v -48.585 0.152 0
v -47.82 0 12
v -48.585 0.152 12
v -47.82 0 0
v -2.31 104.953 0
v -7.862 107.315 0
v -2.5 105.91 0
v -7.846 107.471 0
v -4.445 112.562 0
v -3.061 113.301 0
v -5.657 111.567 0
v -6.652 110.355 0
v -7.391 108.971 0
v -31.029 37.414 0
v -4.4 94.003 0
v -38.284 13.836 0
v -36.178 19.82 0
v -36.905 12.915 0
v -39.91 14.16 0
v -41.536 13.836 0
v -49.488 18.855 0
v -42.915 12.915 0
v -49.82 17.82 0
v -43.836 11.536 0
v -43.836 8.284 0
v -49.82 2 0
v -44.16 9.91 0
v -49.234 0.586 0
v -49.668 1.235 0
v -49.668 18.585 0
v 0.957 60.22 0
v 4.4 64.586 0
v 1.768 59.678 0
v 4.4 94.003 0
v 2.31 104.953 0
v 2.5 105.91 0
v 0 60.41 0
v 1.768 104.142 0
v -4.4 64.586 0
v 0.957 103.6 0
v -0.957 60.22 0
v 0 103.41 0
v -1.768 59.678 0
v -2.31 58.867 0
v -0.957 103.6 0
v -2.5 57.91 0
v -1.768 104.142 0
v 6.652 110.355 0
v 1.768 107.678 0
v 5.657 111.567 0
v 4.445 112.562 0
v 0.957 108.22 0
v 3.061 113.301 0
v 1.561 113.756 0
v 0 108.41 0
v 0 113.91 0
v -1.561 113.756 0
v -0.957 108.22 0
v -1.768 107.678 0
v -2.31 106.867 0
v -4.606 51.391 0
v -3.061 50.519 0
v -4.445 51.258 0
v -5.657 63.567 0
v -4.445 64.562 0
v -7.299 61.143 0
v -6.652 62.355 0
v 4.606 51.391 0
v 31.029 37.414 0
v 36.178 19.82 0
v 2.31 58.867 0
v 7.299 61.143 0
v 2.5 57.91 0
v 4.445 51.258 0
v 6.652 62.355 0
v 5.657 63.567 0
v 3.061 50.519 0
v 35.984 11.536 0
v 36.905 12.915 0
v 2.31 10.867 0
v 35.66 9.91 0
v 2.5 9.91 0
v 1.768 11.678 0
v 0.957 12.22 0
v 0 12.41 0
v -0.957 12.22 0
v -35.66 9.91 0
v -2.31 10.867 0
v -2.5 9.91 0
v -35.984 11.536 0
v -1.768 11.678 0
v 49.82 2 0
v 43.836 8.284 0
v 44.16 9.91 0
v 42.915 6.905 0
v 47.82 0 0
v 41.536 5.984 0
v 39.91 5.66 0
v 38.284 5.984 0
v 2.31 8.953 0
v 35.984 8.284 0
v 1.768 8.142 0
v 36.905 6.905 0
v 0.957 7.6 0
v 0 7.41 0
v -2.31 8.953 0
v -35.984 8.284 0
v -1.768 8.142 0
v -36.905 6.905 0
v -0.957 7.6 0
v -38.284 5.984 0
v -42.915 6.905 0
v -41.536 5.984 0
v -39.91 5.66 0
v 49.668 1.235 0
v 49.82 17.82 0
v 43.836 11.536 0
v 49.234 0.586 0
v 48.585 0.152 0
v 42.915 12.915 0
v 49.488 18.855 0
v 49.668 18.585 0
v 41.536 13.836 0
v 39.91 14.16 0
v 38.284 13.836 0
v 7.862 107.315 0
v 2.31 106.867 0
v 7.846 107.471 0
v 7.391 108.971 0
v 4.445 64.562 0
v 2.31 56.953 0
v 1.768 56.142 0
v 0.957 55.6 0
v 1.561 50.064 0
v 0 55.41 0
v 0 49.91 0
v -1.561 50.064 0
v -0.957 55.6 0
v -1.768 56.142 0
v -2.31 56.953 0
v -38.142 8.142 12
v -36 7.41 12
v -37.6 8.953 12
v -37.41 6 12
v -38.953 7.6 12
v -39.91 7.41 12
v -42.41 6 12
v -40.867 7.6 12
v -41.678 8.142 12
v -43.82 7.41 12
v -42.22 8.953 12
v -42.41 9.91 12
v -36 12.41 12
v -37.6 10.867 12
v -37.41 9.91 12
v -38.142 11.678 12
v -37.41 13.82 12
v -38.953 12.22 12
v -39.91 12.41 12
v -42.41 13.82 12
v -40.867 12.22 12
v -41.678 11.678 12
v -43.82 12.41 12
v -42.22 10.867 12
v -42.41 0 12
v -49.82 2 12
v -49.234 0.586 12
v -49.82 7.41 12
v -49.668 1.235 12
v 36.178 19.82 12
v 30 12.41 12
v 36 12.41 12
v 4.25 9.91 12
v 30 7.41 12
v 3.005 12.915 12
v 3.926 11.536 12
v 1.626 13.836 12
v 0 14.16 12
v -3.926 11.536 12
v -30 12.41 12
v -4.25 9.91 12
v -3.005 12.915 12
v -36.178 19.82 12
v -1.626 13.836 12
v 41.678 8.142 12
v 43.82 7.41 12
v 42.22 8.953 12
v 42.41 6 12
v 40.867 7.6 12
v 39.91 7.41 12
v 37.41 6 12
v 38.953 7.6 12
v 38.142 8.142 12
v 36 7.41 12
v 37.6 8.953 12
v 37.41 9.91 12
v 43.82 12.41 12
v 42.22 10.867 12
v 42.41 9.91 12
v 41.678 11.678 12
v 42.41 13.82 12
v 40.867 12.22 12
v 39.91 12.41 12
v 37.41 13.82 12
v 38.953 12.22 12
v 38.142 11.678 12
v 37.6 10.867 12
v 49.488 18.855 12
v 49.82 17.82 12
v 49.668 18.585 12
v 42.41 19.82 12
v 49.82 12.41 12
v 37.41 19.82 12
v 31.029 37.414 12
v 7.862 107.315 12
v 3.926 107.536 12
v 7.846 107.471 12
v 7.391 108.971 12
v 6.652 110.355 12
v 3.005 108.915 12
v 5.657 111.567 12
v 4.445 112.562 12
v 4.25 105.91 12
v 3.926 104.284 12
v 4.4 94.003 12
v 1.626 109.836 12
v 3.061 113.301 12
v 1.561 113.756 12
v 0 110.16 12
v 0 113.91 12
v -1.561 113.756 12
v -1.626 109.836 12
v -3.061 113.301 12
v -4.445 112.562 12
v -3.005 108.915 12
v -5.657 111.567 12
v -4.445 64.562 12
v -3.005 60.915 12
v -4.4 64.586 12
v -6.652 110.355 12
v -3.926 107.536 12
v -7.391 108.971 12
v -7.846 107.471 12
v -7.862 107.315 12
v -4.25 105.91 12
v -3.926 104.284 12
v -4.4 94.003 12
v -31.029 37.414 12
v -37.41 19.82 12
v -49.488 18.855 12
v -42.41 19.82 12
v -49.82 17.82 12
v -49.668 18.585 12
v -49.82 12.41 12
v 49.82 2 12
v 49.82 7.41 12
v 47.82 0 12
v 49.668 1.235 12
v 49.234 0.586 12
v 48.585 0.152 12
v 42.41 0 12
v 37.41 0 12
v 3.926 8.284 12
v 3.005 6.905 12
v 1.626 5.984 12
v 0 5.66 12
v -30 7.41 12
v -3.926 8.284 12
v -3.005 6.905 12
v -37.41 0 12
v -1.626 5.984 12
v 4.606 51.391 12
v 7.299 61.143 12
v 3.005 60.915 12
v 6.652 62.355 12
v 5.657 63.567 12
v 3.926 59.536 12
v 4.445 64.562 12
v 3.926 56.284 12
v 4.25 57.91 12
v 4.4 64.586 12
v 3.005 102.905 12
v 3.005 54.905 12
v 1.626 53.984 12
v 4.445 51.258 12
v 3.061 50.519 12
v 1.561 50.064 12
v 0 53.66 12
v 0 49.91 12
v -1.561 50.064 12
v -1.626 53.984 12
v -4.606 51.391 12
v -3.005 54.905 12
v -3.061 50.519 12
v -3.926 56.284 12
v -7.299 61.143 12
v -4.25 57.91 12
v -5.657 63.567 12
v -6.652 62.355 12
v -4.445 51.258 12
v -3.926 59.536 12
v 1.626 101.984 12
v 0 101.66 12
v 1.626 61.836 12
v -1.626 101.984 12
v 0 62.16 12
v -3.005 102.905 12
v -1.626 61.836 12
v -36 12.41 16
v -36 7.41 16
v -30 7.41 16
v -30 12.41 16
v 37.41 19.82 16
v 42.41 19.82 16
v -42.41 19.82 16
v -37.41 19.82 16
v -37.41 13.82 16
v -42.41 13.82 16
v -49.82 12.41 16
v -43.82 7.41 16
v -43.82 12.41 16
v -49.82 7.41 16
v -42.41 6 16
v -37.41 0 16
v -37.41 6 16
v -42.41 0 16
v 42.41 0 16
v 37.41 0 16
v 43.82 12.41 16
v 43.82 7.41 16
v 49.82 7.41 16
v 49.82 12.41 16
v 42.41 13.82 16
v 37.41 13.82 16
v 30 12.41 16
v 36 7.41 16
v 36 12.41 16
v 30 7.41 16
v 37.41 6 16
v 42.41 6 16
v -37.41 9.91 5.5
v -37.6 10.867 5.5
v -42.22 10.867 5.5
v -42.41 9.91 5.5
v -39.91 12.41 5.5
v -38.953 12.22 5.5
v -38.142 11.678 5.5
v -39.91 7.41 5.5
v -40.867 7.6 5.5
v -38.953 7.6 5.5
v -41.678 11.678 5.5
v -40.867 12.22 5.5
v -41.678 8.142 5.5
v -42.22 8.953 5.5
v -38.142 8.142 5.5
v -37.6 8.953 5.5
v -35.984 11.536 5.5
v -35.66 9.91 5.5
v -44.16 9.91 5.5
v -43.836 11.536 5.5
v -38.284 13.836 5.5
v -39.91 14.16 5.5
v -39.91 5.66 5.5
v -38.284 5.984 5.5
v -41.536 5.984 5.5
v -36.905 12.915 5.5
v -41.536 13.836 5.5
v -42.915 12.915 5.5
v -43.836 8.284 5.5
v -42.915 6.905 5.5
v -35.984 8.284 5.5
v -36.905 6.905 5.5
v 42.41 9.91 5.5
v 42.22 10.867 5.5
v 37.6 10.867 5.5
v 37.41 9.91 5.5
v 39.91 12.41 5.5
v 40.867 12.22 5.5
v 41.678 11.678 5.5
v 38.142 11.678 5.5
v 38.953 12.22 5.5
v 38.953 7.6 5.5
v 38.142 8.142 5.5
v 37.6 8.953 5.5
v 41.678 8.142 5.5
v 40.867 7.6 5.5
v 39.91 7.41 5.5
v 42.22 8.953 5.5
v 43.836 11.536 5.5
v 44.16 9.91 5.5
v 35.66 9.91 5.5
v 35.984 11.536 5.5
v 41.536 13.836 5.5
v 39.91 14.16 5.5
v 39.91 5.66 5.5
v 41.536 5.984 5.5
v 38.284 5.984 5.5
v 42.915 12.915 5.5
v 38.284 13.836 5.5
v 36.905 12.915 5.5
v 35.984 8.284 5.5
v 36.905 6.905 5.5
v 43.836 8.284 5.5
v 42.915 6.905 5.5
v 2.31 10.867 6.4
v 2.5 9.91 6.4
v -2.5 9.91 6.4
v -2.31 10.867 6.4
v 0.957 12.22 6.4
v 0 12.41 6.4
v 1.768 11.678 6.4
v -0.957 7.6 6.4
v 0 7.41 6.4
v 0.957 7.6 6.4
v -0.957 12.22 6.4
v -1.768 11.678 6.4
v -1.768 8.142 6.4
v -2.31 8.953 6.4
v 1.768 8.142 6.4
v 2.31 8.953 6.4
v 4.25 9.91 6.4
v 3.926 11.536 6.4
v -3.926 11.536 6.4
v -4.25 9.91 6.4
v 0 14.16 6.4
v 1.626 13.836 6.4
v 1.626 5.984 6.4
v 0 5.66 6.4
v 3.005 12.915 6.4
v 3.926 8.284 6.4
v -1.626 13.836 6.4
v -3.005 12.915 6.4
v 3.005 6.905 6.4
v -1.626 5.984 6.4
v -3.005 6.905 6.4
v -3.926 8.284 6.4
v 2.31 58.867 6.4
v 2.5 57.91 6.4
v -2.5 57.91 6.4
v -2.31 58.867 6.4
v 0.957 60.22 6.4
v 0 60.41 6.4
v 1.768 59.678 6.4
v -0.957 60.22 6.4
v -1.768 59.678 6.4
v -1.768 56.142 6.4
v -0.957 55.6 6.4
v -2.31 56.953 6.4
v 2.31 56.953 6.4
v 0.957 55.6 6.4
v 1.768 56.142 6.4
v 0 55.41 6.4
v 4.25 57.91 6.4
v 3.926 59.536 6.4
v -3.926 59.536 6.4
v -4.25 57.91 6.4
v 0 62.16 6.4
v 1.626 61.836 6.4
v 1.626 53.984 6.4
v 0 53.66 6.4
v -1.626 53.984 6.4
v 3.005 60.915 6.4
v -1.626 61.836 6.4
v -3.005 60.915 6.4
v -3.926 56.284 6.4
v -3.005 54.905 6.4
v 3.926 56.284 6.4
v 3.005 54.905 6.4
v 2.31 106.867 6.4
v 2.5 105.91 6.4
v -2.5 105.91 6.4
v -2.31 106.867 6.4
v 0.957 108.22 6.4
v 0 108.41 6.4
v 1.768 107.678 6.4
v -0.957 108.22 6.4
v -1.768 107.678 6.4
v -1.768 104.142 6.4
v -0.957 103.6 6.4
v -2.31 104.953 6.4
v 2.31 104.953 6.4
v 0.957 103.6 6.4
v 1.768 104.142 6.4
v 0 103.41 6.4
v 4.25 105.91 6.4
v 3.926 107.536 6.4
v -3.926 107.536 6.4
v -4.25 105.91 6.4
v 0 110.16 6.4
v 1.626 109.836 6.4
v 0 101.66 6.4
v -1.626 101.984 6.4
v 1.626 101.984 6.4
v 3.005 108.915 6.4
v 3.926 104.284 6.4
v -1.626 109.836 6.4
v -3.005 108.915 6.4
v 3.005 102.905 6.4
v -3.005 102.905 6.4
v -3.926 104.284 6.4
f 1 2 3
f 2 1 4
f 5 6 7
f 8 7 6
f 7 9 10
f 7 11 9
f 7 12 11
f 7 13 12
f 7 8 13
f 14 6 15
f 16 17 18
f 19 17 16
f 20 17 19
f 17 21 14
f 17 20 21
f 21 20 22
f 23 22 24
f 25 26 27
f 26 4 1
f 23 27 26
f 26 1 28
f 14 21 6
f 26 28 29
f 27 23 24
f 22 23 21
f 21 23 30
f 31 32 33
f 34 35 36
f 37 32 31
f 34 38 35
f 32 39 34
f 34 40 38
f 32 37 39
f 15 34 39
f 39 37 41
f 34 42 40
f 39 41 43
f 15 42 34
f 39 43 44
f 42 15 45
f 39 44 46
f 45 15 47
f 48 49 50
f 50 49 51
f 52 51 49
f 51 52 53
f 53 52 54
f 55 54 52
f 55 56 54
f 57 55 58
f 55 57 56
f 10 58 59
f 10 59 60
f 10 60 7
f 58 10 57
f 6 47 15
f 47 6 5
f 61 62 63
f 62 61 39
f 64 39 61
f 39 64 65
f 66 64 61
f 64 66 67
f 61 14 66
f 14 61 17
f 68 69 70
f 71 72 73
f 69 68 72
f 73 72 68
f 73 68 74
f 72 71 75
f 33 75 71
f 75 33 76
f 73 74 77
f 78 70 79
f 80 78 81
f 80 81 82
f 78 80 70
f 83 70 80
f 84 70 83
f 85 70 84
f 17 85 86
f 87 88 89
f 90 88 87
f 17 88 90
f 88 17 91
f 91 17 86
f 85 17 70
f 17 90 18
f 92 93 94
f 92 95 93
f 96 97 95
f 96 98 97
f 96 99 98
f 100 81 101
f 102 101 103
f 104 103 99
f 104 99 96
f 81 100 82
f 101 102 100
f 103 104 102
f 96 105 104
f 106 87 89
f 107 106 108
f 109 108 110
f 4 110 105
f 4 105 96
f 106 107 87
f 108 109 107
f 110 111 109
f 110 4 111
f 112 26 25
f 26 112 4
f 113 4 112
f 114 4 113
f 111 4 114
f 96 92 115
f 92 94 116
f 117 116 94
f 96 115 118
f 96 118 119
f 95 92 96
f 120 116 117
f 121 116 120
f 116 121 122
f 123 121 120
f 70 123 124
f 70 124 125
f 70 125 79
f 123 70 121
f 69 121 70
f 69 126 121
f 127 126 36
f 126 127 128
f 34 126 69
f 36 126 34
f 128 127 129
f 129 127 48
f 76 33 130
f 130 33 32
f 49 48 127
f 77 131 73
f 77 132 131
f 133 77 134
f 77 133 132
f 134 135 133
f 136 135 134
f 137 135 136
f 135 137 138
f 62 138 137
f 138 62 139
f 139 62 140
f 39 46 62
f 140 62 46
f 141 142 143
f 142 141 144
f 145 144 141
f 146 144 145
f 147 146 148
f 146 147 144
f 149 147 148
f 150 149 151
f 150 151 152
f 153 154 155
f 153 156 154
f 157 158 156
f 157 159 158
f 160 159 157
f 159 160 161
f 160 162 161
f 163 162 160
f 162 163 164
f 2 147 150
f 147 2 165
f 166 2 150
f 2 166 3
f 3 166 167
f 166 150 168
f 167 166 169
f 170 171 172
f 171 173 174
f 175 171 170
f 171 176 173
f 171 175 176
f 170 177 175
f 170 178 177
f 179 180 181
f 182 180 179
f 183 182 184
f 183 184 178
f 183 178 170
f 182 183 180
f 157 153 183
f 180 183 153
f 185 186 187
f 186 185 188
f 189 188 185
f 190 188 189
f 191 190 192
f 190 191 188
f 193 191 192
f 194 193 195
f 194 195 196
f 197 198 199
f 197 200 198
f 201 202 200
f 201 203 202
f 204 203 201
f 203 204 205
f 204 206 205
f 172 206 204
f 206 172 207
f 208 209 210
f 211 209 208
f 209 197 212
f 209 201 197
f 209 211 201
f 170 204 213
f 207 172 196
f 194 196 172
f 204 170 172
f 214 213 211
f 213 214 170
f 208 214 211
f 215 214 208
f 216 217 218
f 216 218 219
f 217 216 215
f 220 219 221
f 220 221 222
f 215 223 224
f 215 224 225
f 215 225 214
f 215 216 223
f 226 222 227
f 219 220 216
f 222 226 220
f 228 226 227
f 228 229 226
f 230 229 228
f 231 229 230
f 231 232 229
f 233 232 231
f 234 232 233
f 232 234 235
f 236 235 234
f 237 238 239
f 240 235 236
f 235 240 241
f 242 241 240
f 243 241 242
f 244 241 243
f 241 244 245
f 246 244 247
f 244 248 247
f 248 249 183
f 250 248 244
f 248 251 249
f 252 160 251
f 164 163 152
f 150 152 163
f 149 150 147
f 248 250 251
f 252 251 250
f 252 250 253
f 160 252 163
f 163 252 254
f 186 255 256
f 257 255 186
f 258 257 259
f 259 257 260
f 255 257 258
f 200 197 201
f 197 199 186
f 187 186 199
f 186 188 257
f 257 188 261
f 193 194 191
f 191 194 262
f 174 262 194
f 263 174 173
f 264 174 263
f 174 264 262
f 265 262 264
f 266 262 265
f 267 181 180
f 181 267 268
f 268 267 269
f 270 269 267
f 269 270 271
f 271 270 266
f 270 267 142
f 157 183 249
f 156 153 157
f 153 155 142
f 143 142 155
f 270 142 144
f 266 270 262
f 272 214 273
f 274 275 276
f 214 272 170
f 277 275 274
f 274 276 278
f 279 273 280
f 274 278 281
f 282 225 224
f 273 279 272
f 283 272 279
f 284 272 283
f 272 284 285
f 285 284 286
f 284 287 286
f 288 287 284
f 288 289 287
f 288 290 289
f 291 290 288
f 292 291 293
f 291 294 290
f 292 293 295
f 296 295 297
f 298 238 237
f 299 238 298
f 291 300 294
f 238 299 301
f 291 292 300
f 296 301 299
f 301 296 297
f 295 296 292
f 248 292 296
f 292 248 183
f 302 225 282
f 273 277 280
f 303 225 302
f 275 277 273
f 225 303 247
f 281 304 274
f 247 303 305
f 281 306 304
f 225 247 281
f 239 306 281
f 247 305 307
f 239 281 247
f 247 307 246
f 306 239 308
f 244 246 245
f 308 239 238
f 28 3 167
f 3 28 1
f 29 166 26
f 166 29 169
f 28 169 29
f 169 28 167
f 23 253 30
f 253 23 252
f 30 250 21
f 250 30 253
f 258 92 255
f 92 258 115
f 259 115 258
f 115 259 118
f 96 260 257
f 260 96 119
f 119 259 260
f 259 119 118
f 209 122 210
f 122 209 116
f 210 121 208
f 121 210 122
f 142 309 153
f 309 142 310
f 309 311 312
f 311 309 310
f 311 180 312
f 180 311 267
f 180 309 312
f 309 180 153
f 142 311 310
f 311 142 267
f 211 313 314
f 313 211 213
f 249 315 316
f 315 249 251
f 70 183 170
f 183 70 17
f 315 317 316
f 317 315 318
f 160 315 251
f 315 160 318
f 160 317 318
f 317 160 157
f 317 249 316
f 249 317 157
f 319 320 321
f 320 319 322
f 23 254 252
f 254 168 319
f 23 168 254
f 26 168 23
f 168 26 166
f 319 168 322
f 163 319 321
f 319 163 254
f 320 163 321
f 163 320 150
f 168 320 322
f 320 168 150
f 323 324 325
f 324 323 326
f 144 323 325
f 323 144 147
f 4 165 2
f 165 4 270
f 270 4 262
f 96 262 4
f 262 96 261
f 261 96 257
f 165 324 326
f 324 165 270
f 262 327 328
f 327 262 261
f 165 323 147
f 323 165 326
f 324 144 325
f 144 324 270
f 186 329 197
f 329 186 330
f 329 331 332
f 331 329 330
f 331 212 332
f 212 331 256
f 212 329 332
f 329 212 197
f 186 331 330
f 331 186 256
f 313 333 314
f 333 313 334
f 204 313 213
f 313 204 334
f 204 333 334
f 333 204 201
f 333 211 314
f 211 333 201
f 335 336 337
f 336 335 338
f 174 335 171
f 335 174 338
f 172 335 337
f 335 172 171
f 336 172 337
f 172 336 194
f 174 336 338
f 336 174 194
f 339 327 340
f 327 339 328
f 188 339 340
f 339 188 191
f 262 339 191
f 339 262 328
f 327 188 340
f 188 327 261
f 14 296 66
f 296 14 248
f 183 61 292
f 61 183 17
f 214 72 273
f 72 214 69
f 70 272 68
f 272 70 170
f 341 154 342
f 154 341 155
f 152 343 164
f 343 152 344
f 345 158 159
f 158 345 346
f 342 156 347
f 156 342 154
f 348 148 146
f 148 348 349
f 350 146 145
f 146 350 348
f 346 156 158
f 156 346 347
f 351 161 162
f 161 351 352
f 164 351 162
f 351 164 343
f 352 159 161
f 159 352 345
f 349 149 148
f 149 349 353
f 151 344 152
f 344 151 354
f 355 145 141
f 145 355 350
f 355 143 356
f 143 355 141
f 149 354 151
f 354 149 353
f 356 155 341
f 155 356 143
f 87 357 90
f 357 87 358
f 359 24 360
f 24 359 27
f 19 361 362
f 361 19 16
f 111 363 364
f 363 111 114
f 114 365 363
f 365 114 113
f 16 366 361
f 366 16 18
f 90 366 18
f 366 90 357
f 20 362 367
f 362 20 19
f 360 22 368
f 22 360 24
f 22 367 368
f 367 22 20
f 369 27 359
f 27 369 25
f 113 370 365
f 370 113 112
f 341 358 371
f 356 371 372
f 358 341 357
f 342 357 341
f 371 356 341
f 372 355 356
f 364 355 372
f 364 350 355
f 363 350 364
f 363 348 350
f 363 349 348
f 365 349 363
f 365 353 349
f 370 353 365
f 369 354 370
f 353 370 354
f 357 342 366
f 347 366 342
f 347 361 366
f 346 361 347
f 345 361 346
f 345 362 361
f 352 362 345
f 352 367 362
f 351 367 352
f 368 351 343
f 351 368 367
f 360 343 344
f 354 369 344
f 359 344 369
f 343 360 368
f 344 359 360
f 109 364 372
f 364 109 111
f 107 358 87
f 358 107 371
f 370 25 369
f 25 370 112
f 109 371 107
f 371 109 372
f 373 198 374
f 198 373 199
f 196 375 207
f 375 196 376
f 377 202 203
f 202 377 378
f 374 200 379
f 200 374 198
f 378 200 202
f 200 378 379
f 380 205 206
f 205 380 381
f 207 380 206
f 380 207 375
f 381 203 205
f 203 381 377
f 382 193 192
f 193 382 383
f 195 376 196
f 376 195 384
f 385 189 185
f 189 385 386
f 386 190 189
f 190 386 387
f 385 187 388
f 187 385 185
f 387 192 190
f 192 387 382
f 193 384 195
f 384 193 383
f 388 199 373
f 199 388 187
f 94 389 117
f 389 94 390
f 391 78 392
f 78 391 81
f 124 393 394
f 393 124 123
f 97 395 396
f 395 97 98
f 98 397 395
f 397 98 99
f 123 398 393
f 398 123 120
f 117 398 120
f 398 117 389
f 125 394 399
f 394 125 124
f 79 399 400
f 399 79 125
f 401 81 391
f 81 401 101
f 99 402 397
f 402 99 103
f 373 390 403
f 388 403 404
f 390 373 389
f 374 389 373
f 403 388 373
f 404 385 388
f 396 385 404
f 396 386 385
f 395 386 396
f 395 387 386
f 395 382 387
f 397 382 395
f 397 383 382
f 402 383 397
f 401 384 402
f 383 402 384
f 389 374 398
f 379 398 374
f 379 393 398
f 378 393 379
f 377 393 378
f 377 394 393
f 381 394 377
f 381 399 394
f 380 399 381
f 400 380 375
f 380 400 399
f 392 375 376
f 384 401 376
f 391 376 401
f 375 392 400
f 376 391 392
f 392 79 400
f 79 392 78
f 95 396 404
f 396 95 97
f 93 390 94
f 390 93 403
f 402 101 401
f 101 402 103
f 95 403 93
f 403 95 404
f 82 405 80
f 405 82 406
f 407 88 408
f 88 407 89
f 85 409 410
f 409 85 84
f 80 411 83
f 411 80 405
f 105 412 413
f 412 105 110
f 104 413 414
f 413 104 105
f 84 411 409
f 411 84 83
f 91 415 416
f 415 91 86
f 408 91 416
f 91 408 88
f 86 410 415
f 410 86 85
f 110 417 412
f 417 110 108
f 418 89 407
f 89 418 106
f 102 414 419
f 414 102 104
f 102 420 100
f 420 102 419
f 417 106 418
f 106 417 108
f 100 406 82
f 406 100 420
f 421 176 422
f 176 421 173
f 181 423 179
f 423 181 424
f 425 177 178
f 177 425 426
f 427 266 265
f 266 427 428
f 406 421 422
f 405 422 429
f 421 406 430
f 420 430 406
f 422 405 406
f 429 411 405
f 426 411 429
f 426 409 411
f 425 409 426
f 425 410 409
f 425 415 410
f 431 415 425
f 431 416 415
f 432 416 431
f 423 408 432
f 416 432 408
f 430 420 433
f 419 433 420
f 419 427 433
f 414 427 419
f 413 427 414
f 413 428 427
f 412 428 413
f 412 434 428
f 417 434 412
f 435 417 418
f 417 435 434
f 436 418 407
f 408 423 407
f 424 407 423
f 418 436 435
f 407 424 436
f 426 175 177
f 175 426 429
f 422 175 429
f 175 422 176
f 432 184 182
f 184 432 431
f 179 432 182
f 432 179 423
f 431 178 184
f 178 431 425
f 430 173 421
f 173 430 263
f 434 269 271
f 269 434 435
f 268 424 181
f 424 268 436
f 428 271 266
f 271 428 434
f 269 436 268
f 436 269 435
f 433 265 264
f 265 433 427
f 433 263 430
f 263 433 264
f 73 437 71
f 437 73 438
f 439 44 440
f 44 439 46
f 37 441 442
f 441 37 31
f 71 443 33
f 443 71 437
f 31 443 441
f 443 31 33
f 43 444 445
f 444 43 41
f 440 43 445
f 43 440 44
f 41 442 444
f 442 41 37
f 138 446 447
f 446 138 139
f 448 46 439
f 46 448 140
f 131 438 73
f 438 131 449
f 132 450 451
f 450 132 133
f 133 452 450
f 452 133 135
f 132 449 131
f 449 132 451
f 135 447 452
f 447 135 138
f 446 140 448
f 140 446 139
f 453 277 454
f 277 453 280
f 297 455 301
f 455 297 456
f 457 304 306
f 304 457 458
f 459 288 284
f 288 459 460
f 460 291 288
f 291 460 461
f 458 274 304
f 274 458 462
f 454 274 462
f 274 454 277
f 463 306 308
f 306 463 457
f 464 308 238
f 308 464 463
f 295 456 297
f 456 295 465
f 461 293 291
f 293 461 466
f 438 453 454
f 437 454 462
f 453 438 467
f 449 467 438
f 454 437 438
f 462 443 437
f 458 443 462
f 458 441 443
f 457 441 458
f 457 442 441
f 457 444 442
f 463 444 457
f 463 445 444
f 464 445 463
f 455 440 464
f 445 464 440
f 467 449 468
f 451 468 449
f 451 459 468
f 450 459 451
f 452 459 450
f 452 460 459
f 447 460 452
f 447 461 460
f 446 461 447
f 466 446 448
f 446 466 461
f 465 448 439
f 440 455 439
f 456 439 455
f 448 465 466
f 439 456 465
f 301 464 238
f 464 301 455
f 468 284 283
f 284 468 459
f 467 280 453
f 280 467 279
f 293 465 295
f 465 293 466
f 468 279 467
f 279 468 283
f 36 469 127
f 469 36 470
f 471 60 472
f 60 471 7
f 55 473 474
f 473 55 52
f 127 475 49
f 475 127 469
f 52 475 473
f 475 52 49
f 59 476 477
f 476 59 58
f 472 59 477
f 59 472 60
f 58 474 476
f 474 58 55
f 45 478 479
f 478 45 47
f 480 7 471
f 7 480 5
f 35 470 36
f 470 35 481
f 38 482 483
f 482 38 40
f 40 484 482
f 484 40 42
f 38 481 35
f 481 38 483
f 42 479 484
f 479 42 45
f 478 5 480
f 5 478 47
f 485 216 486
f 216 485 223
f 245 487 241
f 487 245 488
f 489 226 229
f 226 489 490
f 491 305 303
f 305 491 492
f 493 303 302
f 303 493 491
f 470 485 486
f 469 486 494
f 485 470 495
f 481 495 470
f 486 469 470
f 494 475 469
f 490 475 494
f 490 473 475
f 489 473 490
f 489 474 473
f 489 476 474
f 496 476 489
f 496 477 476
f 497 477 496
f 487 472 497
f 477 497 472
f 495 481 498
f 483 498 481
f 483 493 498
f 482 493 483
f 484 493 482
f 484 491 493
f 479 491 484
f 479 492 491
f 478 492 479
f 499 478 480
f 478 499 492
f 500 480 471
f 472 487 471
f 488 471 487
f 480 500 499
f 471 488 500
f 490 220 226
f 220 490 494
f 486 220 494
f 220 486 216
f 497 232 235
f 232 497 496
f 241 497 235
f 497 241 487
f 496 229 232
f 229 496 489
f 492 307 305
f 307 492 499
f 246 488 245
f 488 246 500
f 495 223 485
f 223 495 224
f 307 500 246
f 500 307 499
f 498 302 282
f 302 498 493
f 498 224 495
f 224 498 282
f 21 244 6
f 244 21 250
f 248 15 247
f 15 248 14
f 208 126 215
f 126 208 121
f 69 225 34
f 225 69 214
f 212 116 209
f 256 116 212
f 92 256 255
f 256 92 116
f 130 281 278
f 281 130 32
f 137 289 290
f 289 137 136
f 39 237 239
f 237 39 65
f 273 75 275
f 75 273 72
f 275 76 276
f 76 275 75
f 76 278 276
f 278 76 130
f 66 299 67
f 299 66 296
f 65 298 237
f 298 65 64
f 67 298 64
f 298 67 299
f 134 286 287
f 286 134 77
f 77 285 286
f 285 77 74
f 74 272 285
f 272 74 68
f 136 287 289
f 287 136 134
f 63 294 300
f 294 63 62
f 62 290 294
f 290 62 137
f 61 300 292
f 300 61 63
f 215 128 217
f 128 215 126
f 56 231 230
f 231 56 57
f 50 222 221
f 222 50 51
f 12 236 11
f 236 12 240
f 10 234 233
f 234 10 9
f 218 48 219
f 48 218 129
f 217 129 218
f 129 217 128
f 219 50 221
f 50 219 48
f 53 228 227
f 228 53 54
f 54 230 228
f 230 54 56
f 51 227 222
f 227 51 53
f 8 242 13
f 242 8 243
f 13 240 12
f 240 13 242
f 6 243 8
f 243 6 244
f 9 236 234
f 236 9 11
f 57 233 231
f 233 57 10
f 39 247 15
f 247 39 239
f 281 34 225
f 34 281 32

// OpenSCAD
profilabstand = 60;
dicke = 12;
profilbreite = 19.82;
nutbreite = 5;
nuttiefe = 6;
schraubendurchmesser = 5;
schraubenkopfdurchmesser = 8.5;
schraubenkopfhoehe = 5;
winkellochoffset = 48;

module halter() {
    difference() {
        union() {
            translate([-profilbreite/2+2, -profilbreite/2, 0]) {
                cube([2*profilbreite+profilabstand-4, profilbreite, dicke]);
            }
            for(i=[-profilbreite/2+2,3*profilbreite/2+profilabstand-2]) {
                for(j=[-profilbreite/2+2, profilbreite/2-2]) {
                    translate([i, j, 0]) {
                        cylinder(r=2, h=dicke, $fn=16);
                    }
                }
            }
            translate([-profilbreite/2, -profilbreite/2+2, 0]) {
                cube([2*profilbreite+profilabstand, profilbreite-4, dicke]);
            }
            for(j=[0, profilabstand+profilbreite]) {
                translate([j, 0, 0]) {
                    for(i=[0, 90, 180, 270]) {
                        rotate([0, 0, i]) {
                            translate([profilbreite/2-nuttiefe, -nutbreite/2, dicke]) {
                                cube([nuttiefe, nutbreite, 4]);
                            }
                        }
                    }
                }
            }
            translate([(profilabstand+profilbreite)/2, winkellochoffset, 0]) {
                cylinder(d=16, h=dicke, $fn=32);
            }
            translate([(profilabstand+profilbreite)/2, 2*winkellochoffset, 0]) {
                cylinder(d=16, h=dicke, $fn=32);
            }
            for(i=[-1, 1]) {
                translate([i*46.1+(profilabstand+profilbreite)/2, profilbreite/2-3.7, 0]) {
                    rotate([0, 0, i*45+90]) {
                        translate([0, -4.4, 0]) {
                            cube([62, 8.8, dicke]);
                        }
                    }
                }
            }
            for(i=[-1, 1]) {
                translate([i*45.7+(profilabstand+profilbreite)/2, profilbreite/2-3.25, 0]) {
                    rotate([0, 0, i*25.2+90]) {
                        translate([0, -4.4, 0]) {
                            cube([102, 8.8, dicke]);
                        }
                    }
                }
                
            }
            translate([-4.4+(profilabstand+profilbreite)/2, winkellochoffset, 0]) {
                cube([8.8, 50, dicke]);
            }
        }
        for(i=[0, profilabstand+profilbreite]) {
            translate([i, 0, -0.1]) {
                cylinder(d=schraubendurchmesser, h=dicke+0.2, $fn=16);
                cylinder(d=schraubenkopfdurchmesser, h=schraubenkopfhoehe+0.6, $fn=16);
            }
        }
        for(i=[0, winkellochoffset, 2*winkellochoffset]) {
            translate([(profilabstand+profilbreite)/2, i, -0.1]) {
                cylinder(d=schraubendurchmesser, h=dicke+0.2, $fn=16);
                translate([0, 0, dicke-schraubenkopfhoehe-0.5]) {
                    cylinder(d=schraubenkopfdurchmesser, h=schraubenkopfhoehe+0.7, $fn=16);
                }
            }
        }
    }
}

translate([-(profilabstand+profilbreite)/2, profilbreite/2, 0]) halter();

/*for(i=[0, 180]) {
    rotate([0, 0, i]) {
        translate([-(profilabstand+profilbreite)/2, profilbreite/2+2, 0]) {
            halter();
        }
    }
}*/
